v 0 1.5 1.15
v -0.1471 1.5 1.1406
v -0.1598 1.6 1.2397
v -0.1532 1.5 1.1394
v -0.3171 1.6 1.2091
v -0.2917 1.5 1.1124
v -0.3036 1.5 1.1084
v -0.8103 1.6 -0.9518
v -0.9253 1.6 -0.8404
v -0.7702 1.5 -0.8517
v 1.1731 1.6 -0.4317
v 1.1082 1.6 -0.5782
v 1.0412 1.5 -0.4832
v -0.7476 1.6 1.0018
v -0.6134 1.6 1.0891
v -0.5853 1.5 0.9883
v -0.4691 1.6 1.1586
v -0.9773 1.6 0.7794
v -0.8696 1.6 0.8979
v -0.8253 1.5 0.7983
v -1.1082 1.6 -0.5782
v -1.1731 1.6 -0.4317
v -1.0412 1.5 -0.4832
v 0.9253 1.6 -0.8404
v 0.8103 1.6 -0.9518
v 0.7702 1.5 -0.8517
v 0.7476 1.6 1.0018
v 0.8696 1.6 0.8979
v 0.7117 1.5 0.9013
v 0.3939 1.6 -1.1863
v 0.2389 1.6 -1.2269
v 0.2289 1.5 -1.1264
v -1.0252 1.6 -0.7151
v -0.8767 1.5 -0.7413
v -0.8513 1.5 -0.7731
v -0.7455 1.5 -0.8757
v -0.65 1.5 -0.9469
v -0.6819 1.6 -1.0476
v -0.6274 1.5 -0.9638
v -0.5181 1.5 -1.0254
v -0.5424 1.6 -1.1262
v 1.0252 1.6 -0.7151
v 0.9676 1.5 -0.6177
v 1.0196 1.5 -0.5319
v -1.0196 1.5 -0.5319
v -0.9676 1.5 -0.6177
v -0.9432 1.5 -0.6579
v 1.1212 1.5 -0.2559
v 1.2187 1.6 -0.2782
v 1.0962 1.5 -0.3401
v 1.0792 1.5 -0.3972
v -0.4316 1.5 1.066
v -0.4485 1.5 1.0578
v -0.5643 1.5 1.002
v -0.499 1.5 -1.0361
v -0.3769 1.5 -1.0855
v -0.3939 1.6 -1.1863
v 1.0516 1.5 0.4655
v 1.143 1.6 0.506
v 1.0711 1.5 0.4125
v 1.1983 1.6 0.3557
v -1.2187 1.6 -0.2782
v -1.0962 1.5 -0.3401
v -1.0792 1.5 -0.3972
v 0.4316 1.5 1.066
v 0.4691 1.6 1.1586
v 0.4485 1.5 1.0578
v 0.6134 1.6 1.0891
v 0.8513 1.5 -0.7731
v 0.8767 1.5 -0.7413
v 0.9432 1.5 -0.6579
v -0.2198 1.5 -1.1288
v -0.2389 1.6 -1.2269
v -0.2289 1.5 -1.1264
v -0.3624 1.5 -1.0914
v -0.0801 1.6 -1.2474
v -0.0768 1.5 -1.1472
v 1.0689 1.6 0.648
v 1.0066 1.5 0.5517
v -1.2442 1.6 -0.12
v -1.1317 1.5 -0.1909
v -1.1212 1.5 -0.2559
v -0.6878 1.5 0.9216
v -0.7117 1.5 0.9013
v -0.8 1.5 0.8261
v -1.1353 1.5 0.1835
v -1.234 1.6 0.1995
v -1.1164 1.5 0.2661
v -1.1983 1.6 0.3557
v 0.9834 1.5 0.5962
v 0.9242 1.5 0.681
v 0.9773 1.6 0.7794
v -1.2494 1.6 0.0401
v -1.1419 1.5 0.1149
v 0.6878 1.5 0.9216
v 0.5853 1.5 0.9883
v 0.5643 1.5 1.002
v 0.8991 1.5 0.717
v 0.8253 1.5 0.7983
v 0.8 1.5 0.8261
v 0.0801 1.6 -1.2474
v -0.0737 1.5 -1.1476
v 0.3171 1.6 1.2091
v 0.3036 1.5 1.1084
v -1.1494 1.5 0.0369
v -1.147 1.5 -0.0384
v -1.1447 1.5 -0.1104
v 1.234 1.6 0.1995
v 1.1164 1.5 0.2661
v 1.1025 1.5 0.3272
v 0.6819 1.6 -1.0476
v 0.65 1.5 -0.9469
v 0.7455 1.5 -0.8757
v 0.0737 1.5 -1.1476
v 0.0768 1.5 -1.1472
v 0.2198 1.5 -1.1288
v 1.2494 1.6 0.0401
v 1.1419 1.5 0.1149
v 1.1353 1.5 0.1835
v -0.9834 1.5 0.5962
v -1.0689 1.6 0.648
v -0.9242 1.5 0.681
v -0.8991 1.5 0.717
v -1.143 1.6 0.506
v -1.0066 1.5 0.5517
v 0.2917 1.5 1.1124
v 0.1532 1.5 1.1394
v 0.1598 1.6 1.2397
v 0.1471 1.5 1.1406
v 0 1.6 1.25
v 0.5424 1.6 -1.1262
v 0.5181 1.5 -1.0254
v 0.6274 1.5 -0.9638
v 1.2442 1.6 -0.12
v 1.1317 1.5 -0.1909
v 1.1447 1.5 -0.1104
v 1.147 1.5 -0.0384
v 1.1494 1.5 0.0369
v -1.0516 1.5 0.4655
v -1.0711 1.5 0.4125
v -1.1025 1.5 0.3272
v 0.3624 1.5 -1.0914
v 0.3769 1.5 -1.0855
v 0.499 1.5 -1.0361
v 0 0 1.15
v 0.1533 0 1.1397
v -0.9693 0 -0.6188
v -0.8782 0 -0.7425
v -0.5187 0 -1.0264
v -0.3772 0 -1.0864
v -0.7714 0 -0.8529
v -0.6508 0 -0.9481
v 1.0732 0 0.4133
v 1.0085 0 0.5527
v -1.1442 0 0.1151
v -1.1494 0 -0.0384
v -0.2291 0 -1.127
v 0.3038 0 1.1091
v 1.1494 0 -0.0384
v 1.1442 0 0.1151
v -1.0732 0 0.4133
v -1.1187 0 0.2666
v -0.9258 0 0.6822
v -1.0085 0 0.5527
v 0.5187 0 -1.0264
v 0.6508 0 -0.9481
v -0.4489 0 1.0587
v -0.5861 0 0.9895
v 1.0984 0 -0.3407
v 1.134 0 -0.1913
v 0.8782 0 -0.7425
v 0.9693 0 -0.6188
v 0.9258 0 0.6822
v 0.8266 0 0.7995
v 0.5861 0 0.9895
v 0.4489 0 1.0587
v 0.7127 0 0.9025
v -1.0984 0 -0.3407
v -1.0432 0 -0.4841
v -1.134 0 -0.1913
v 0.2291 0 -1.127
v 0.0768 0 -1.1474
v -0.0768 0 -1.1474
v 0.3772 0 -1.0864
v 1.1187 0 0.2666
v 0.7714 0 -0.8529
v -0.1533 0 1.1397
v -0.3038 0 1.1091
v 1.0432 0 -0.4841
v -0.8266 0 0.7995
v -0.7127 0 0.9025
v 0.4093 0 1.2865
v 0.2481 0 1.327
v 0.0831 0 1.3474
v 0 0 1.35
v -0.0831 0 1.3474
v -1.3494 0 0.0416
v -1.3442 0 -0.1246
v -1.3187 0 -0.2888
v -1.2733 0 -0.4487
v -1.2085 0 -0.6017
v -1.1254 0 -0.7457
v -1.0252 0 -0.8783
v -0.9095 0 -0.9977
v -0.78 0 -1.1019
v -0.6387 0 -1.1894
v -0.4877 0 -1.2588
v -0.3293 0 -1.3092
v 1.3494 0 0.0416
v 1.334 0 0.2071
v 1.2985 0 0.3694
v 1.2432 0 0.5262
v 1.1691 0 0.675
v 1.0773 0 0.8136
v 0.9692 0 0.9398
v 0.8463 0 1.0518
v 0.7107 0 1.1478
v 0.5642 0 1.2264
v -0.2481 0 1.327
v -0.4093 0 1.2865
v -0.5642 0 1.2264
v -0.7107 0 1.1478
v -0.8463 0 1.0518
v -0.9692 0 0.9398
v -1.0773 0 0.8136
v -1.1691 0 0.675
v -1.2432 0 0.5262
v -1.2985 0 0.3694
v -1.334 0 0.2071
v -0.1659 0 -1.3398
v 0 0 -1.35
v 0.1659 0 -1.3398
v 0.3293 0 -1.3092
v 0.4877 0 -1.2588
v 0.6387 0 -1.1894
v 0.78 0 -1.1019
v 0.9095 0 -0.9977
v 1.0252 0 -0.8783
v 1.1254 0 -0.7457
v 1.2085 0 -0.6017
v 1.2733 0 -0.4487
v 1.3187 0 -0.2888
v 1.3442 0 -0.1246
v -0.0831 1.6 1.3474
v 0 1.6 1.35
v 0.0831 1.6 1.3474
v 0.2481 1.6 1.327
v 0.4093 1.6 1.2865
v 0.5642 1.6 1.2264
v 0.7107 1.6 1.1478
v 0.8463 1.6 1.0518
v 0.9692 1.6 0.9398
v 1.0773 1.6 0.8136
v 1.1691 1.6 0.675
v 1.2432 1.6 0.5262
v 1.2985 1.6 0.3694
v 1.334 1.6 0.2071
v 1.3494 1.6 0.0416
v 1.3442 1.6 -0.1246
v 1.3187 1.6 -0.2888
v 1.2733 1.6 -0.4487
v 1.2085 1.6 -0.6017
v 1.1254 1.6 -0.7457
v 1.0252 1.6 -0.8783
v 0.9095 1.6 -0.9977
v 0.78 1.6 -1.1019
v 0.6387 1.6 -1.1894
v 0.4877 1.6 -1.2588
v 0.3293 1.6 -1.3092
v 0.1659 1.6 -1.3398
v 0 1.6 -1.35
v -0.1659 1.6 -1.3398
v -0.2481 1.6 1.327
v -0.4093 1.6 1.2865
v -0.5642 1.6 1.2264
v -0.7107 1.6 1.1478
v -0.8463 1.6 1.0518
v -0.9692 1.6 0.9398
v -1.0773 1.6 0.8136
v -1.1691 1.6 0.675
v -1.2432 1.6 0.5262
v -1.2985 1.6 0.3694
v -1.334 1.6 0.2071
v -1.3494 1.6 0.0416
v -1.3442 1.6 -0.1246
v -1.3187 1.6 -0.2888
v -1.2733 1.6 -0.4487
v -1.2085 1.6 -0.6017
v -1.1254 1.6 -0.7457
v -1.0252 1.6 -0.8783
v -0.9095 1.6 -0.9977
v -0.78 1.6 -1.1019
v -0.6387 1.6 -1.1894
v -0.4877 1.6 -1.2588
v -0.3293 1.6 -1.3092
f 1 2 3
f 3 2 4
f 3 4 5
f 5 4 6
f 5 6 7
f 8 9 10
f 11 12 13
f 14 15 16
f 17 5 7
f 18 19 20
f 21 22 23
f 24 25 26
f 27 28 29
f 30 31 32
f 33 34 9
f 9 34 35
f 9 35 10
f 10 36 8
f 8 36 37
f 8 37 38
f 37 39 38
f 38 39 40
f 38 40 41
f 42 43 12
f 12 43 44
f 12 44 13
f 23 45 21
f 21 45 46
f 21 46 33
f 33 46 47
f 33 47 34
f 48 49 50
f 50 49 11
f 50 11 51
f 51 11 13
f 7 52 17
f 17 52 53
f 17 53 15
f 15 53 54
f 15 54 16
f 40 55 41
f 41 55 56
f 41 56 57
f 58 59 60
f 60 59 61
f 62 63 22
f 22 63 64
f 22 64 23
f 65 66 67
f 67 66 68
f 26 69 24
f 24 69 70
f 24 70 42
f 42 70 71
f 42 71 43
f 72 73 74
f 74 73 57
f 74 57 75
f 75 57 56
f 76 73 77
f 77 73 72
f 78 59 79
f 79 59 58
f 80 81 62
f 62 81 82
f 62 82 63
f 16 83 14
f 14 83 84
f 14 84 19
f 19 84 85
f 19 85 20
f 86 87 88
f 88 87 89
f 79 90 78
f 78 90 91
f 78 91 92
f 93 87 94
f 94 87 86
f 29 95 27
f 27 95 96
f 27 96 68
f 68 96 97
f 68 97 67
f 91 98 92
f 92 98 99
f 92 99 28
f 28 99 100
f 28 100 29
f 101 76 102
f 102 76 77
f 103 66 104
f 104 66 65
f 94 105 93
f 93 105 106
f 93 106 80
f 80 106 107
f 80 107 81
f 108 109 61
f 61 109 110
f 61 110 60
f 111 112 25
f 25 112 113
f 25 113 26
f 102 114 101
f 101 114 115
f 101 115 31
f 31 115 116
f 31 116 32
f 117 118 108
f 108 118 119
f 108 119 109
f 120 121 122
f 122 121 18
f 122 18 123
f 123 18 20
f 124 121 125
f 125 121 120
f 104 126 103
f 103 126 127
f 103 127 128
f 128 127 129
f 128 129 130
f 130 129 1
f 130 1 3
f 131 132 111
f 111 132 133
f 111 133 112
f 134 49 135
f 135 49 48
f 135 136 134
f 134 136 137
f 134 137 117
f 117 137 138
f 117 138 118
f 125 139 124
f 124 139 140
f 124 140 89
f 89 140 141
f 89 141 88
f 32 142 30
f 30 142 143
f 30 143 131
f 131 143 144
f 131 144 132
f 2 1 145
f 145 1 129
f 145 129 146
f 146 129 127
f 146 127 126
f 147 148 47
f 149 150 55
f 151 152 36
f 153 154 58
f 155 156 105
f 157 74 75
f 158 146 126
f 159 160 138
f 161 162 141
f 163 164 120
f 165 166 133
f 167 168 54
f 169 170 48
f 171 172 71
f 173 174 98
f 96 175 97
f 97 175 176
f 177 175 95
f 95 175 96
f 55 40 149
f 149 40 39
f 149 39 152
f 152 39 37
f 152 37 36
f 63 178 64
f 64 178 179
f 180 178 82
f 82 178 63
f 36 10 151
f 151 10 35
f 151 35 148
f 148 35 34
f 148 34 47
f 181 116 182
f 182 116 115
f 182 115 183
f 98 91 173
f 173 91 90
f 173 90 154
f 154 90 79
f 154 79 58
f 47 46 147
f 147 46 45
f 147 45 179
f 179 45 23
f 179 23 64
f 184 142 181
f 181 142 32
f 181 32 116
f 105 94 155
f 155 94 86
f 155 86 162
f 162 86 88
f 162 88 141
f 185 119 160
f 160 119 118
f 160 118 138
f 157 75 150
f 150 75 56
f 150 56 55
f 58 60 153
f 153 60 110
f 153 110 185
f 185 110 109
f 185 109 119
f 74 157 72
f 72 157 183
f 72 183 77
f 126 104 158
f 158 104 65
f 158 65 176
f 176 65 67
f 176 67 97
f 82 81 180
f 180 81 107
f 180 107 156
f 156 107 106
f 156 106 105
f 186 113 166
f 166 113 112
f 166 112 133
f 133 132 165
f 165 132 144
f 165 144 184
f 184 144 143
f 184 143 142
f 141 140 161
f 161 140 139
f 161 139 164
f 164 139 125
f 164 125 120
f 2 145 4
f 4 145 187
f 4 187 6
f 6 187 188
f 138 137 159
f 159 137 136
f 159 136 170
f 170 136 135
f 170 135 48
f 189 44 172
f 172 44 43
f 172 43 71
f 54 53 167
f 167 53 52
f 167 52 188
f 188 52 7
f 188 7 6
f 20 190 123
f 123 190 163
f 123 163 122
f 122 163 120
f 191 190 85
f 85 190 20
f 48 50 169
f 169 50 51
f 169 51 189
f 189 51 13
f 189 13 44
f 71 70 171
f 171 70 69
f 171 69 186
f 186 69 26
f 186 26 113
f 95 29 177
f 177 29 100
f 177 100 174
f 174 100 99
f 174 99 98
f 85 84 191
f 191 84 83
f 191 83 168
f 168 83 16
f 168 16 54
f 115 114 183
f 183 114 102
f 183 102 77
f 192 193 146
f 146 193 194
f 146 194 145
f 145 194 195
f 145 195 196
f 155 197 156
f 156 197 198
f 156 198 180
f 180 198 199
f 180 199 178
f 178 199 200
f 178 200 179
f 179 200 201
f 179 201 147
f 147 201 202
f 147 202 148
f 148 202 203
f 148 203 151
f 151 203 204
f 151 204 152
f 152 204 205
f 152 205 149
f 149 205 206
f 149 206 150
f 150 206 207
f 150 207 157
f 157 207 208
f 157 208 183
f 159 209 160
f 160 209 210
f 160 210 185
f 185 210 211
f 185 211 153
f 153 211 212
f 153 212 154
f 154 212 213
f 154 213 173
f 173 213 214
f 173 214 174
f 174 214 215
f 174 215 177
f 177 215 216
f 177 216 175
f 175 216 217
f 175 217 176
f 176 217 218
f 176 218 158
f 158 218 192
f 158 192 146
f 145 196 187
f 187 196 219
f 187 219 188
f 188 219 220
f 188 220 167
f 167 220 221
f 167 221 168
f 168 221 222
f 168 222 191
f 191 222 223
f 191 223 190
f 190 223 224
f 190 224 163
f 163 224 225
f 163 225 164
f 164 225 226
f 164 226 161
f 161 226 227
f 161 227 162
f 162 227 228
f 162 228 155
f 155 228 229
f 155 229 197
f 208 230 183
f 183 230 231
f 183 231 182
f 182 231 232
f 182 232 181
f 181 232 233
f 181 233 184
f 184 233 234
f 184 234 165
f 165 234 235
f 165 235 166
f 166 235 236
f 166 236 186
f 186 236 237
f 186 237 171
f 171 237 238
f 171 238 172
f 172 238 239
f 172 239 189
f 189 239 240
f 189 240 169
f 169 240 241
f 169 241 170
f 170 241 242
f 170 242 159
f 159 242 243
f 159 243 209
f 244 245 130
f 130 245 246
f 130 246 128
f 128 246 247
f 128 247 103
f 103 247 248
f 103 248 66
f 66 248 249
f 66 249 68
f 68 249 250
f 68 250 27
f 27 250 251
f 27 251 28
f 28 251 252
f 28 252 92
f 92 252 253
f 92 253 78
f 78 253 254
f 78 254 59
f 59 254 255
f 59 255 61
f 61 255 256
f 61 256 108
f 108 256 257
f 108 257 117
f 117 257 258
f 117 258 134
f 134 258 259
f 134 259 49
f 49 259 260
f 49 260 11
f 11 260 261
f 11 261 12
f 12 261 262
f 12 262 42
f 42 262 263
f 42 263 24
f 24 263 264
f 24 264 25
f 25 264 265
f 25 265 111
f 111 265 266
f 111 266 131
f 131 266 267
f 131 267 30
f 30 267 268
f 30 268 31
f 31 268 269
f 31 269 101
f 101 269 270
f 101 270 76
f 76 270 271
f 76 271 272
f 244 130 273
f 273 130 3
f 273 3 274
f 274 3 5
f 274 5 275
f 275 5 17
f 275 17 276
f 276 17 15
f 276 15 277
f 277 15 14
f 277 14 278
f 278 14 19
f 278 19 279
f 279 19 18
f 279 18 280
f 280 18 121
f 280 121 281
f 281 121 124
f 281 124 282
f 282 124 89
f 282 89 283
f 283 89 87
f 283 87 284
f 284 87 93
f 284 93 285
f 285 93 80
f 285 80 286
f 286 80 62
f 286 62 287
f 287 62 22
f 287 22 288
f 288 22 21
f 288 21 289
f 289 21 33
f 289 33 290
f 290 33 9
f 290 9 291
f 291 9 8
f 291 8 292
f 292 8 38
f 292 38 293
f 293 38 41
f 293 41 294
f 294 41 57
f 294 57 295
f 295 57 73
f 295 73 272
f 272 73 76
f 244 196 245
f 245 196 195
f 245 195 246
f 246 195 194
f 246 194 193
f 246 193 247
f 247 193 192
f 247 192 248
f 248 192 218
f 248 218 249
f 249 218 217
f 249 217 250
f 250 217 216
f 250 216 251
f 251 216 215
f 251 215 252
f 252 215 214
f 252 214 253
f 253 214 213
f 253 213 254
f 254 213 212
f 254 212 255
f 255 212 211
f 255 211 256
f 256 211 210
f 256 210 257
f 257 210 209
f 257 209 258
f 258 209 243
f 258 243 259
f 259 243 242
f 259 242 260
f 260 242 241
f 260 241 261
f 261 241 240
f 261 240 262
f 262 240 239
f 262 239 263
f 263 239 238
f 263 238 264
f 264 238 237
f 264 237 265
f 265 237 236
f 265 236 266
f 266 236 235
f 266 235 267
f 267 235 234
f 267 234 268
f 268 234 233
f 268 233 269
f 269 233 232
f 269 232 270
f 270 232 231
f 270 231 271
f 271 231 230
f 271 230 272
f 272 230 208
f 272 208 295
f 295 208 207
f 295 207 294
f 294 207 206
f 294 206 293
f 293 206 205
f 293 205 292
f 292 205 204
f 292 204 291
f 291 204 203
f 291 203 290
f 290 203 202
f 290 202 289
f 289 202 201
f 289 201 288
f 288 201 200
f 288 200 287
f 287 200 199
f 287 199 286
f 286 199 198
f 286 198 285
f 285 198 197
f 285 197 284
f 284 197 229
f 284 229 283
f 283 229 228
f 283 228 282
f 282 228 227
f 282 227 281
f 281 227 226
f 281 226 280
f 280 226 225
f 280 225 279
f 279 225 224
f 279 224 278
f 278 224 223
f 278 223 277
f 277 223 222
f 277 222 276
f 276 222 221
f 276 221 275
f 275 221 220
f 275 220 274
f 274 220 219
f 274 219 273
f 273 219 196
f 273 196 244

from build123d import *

# Parameters (mm, degrees)
SKETCH1_R           = 1.35
BOSS_EXTRUDE1_DEPTH = 1.6
SKETCH2_R           = 1.15
CUT_EXTRUDE1_DEPTH  = 2.6
CHAMFER1_SIZE       = 0.1


with BuildPart() as part:
    # Sketch1 → Boss-Extrude1 (new body)
    with BuildSketch(Plane(origin=(0, 0, 0), x_dir=(1, 0, 0), z_dir=(0, 1, 0))):
        Circle(SKETCH1_R)
    extrude(amount=BOSS_EXTRUDE1_DEPTH)

    # Sketch2 → Cut-Extrude1 (cut, through all)
    with BuildSketch(Plane(origin=(0, 1.6, 0), x_dir=(1, 0, 0), z_dir=(0, 1, 0))):
        Circle(SKETCH2_R)
    extrude(amount=-CUT_EXTRUDE1_DEPTH, mode=Mode.SUBTRACT)

    # Chamfer1
    chamfer1_edges = [part.edges().sort_by_distance(p)[0] for p in [
        (-1.15, 1.6, 0),
    ]]
    chamfer(chamfer1_edges, length=CHAMFER1_SIZE)


solid = part.part
